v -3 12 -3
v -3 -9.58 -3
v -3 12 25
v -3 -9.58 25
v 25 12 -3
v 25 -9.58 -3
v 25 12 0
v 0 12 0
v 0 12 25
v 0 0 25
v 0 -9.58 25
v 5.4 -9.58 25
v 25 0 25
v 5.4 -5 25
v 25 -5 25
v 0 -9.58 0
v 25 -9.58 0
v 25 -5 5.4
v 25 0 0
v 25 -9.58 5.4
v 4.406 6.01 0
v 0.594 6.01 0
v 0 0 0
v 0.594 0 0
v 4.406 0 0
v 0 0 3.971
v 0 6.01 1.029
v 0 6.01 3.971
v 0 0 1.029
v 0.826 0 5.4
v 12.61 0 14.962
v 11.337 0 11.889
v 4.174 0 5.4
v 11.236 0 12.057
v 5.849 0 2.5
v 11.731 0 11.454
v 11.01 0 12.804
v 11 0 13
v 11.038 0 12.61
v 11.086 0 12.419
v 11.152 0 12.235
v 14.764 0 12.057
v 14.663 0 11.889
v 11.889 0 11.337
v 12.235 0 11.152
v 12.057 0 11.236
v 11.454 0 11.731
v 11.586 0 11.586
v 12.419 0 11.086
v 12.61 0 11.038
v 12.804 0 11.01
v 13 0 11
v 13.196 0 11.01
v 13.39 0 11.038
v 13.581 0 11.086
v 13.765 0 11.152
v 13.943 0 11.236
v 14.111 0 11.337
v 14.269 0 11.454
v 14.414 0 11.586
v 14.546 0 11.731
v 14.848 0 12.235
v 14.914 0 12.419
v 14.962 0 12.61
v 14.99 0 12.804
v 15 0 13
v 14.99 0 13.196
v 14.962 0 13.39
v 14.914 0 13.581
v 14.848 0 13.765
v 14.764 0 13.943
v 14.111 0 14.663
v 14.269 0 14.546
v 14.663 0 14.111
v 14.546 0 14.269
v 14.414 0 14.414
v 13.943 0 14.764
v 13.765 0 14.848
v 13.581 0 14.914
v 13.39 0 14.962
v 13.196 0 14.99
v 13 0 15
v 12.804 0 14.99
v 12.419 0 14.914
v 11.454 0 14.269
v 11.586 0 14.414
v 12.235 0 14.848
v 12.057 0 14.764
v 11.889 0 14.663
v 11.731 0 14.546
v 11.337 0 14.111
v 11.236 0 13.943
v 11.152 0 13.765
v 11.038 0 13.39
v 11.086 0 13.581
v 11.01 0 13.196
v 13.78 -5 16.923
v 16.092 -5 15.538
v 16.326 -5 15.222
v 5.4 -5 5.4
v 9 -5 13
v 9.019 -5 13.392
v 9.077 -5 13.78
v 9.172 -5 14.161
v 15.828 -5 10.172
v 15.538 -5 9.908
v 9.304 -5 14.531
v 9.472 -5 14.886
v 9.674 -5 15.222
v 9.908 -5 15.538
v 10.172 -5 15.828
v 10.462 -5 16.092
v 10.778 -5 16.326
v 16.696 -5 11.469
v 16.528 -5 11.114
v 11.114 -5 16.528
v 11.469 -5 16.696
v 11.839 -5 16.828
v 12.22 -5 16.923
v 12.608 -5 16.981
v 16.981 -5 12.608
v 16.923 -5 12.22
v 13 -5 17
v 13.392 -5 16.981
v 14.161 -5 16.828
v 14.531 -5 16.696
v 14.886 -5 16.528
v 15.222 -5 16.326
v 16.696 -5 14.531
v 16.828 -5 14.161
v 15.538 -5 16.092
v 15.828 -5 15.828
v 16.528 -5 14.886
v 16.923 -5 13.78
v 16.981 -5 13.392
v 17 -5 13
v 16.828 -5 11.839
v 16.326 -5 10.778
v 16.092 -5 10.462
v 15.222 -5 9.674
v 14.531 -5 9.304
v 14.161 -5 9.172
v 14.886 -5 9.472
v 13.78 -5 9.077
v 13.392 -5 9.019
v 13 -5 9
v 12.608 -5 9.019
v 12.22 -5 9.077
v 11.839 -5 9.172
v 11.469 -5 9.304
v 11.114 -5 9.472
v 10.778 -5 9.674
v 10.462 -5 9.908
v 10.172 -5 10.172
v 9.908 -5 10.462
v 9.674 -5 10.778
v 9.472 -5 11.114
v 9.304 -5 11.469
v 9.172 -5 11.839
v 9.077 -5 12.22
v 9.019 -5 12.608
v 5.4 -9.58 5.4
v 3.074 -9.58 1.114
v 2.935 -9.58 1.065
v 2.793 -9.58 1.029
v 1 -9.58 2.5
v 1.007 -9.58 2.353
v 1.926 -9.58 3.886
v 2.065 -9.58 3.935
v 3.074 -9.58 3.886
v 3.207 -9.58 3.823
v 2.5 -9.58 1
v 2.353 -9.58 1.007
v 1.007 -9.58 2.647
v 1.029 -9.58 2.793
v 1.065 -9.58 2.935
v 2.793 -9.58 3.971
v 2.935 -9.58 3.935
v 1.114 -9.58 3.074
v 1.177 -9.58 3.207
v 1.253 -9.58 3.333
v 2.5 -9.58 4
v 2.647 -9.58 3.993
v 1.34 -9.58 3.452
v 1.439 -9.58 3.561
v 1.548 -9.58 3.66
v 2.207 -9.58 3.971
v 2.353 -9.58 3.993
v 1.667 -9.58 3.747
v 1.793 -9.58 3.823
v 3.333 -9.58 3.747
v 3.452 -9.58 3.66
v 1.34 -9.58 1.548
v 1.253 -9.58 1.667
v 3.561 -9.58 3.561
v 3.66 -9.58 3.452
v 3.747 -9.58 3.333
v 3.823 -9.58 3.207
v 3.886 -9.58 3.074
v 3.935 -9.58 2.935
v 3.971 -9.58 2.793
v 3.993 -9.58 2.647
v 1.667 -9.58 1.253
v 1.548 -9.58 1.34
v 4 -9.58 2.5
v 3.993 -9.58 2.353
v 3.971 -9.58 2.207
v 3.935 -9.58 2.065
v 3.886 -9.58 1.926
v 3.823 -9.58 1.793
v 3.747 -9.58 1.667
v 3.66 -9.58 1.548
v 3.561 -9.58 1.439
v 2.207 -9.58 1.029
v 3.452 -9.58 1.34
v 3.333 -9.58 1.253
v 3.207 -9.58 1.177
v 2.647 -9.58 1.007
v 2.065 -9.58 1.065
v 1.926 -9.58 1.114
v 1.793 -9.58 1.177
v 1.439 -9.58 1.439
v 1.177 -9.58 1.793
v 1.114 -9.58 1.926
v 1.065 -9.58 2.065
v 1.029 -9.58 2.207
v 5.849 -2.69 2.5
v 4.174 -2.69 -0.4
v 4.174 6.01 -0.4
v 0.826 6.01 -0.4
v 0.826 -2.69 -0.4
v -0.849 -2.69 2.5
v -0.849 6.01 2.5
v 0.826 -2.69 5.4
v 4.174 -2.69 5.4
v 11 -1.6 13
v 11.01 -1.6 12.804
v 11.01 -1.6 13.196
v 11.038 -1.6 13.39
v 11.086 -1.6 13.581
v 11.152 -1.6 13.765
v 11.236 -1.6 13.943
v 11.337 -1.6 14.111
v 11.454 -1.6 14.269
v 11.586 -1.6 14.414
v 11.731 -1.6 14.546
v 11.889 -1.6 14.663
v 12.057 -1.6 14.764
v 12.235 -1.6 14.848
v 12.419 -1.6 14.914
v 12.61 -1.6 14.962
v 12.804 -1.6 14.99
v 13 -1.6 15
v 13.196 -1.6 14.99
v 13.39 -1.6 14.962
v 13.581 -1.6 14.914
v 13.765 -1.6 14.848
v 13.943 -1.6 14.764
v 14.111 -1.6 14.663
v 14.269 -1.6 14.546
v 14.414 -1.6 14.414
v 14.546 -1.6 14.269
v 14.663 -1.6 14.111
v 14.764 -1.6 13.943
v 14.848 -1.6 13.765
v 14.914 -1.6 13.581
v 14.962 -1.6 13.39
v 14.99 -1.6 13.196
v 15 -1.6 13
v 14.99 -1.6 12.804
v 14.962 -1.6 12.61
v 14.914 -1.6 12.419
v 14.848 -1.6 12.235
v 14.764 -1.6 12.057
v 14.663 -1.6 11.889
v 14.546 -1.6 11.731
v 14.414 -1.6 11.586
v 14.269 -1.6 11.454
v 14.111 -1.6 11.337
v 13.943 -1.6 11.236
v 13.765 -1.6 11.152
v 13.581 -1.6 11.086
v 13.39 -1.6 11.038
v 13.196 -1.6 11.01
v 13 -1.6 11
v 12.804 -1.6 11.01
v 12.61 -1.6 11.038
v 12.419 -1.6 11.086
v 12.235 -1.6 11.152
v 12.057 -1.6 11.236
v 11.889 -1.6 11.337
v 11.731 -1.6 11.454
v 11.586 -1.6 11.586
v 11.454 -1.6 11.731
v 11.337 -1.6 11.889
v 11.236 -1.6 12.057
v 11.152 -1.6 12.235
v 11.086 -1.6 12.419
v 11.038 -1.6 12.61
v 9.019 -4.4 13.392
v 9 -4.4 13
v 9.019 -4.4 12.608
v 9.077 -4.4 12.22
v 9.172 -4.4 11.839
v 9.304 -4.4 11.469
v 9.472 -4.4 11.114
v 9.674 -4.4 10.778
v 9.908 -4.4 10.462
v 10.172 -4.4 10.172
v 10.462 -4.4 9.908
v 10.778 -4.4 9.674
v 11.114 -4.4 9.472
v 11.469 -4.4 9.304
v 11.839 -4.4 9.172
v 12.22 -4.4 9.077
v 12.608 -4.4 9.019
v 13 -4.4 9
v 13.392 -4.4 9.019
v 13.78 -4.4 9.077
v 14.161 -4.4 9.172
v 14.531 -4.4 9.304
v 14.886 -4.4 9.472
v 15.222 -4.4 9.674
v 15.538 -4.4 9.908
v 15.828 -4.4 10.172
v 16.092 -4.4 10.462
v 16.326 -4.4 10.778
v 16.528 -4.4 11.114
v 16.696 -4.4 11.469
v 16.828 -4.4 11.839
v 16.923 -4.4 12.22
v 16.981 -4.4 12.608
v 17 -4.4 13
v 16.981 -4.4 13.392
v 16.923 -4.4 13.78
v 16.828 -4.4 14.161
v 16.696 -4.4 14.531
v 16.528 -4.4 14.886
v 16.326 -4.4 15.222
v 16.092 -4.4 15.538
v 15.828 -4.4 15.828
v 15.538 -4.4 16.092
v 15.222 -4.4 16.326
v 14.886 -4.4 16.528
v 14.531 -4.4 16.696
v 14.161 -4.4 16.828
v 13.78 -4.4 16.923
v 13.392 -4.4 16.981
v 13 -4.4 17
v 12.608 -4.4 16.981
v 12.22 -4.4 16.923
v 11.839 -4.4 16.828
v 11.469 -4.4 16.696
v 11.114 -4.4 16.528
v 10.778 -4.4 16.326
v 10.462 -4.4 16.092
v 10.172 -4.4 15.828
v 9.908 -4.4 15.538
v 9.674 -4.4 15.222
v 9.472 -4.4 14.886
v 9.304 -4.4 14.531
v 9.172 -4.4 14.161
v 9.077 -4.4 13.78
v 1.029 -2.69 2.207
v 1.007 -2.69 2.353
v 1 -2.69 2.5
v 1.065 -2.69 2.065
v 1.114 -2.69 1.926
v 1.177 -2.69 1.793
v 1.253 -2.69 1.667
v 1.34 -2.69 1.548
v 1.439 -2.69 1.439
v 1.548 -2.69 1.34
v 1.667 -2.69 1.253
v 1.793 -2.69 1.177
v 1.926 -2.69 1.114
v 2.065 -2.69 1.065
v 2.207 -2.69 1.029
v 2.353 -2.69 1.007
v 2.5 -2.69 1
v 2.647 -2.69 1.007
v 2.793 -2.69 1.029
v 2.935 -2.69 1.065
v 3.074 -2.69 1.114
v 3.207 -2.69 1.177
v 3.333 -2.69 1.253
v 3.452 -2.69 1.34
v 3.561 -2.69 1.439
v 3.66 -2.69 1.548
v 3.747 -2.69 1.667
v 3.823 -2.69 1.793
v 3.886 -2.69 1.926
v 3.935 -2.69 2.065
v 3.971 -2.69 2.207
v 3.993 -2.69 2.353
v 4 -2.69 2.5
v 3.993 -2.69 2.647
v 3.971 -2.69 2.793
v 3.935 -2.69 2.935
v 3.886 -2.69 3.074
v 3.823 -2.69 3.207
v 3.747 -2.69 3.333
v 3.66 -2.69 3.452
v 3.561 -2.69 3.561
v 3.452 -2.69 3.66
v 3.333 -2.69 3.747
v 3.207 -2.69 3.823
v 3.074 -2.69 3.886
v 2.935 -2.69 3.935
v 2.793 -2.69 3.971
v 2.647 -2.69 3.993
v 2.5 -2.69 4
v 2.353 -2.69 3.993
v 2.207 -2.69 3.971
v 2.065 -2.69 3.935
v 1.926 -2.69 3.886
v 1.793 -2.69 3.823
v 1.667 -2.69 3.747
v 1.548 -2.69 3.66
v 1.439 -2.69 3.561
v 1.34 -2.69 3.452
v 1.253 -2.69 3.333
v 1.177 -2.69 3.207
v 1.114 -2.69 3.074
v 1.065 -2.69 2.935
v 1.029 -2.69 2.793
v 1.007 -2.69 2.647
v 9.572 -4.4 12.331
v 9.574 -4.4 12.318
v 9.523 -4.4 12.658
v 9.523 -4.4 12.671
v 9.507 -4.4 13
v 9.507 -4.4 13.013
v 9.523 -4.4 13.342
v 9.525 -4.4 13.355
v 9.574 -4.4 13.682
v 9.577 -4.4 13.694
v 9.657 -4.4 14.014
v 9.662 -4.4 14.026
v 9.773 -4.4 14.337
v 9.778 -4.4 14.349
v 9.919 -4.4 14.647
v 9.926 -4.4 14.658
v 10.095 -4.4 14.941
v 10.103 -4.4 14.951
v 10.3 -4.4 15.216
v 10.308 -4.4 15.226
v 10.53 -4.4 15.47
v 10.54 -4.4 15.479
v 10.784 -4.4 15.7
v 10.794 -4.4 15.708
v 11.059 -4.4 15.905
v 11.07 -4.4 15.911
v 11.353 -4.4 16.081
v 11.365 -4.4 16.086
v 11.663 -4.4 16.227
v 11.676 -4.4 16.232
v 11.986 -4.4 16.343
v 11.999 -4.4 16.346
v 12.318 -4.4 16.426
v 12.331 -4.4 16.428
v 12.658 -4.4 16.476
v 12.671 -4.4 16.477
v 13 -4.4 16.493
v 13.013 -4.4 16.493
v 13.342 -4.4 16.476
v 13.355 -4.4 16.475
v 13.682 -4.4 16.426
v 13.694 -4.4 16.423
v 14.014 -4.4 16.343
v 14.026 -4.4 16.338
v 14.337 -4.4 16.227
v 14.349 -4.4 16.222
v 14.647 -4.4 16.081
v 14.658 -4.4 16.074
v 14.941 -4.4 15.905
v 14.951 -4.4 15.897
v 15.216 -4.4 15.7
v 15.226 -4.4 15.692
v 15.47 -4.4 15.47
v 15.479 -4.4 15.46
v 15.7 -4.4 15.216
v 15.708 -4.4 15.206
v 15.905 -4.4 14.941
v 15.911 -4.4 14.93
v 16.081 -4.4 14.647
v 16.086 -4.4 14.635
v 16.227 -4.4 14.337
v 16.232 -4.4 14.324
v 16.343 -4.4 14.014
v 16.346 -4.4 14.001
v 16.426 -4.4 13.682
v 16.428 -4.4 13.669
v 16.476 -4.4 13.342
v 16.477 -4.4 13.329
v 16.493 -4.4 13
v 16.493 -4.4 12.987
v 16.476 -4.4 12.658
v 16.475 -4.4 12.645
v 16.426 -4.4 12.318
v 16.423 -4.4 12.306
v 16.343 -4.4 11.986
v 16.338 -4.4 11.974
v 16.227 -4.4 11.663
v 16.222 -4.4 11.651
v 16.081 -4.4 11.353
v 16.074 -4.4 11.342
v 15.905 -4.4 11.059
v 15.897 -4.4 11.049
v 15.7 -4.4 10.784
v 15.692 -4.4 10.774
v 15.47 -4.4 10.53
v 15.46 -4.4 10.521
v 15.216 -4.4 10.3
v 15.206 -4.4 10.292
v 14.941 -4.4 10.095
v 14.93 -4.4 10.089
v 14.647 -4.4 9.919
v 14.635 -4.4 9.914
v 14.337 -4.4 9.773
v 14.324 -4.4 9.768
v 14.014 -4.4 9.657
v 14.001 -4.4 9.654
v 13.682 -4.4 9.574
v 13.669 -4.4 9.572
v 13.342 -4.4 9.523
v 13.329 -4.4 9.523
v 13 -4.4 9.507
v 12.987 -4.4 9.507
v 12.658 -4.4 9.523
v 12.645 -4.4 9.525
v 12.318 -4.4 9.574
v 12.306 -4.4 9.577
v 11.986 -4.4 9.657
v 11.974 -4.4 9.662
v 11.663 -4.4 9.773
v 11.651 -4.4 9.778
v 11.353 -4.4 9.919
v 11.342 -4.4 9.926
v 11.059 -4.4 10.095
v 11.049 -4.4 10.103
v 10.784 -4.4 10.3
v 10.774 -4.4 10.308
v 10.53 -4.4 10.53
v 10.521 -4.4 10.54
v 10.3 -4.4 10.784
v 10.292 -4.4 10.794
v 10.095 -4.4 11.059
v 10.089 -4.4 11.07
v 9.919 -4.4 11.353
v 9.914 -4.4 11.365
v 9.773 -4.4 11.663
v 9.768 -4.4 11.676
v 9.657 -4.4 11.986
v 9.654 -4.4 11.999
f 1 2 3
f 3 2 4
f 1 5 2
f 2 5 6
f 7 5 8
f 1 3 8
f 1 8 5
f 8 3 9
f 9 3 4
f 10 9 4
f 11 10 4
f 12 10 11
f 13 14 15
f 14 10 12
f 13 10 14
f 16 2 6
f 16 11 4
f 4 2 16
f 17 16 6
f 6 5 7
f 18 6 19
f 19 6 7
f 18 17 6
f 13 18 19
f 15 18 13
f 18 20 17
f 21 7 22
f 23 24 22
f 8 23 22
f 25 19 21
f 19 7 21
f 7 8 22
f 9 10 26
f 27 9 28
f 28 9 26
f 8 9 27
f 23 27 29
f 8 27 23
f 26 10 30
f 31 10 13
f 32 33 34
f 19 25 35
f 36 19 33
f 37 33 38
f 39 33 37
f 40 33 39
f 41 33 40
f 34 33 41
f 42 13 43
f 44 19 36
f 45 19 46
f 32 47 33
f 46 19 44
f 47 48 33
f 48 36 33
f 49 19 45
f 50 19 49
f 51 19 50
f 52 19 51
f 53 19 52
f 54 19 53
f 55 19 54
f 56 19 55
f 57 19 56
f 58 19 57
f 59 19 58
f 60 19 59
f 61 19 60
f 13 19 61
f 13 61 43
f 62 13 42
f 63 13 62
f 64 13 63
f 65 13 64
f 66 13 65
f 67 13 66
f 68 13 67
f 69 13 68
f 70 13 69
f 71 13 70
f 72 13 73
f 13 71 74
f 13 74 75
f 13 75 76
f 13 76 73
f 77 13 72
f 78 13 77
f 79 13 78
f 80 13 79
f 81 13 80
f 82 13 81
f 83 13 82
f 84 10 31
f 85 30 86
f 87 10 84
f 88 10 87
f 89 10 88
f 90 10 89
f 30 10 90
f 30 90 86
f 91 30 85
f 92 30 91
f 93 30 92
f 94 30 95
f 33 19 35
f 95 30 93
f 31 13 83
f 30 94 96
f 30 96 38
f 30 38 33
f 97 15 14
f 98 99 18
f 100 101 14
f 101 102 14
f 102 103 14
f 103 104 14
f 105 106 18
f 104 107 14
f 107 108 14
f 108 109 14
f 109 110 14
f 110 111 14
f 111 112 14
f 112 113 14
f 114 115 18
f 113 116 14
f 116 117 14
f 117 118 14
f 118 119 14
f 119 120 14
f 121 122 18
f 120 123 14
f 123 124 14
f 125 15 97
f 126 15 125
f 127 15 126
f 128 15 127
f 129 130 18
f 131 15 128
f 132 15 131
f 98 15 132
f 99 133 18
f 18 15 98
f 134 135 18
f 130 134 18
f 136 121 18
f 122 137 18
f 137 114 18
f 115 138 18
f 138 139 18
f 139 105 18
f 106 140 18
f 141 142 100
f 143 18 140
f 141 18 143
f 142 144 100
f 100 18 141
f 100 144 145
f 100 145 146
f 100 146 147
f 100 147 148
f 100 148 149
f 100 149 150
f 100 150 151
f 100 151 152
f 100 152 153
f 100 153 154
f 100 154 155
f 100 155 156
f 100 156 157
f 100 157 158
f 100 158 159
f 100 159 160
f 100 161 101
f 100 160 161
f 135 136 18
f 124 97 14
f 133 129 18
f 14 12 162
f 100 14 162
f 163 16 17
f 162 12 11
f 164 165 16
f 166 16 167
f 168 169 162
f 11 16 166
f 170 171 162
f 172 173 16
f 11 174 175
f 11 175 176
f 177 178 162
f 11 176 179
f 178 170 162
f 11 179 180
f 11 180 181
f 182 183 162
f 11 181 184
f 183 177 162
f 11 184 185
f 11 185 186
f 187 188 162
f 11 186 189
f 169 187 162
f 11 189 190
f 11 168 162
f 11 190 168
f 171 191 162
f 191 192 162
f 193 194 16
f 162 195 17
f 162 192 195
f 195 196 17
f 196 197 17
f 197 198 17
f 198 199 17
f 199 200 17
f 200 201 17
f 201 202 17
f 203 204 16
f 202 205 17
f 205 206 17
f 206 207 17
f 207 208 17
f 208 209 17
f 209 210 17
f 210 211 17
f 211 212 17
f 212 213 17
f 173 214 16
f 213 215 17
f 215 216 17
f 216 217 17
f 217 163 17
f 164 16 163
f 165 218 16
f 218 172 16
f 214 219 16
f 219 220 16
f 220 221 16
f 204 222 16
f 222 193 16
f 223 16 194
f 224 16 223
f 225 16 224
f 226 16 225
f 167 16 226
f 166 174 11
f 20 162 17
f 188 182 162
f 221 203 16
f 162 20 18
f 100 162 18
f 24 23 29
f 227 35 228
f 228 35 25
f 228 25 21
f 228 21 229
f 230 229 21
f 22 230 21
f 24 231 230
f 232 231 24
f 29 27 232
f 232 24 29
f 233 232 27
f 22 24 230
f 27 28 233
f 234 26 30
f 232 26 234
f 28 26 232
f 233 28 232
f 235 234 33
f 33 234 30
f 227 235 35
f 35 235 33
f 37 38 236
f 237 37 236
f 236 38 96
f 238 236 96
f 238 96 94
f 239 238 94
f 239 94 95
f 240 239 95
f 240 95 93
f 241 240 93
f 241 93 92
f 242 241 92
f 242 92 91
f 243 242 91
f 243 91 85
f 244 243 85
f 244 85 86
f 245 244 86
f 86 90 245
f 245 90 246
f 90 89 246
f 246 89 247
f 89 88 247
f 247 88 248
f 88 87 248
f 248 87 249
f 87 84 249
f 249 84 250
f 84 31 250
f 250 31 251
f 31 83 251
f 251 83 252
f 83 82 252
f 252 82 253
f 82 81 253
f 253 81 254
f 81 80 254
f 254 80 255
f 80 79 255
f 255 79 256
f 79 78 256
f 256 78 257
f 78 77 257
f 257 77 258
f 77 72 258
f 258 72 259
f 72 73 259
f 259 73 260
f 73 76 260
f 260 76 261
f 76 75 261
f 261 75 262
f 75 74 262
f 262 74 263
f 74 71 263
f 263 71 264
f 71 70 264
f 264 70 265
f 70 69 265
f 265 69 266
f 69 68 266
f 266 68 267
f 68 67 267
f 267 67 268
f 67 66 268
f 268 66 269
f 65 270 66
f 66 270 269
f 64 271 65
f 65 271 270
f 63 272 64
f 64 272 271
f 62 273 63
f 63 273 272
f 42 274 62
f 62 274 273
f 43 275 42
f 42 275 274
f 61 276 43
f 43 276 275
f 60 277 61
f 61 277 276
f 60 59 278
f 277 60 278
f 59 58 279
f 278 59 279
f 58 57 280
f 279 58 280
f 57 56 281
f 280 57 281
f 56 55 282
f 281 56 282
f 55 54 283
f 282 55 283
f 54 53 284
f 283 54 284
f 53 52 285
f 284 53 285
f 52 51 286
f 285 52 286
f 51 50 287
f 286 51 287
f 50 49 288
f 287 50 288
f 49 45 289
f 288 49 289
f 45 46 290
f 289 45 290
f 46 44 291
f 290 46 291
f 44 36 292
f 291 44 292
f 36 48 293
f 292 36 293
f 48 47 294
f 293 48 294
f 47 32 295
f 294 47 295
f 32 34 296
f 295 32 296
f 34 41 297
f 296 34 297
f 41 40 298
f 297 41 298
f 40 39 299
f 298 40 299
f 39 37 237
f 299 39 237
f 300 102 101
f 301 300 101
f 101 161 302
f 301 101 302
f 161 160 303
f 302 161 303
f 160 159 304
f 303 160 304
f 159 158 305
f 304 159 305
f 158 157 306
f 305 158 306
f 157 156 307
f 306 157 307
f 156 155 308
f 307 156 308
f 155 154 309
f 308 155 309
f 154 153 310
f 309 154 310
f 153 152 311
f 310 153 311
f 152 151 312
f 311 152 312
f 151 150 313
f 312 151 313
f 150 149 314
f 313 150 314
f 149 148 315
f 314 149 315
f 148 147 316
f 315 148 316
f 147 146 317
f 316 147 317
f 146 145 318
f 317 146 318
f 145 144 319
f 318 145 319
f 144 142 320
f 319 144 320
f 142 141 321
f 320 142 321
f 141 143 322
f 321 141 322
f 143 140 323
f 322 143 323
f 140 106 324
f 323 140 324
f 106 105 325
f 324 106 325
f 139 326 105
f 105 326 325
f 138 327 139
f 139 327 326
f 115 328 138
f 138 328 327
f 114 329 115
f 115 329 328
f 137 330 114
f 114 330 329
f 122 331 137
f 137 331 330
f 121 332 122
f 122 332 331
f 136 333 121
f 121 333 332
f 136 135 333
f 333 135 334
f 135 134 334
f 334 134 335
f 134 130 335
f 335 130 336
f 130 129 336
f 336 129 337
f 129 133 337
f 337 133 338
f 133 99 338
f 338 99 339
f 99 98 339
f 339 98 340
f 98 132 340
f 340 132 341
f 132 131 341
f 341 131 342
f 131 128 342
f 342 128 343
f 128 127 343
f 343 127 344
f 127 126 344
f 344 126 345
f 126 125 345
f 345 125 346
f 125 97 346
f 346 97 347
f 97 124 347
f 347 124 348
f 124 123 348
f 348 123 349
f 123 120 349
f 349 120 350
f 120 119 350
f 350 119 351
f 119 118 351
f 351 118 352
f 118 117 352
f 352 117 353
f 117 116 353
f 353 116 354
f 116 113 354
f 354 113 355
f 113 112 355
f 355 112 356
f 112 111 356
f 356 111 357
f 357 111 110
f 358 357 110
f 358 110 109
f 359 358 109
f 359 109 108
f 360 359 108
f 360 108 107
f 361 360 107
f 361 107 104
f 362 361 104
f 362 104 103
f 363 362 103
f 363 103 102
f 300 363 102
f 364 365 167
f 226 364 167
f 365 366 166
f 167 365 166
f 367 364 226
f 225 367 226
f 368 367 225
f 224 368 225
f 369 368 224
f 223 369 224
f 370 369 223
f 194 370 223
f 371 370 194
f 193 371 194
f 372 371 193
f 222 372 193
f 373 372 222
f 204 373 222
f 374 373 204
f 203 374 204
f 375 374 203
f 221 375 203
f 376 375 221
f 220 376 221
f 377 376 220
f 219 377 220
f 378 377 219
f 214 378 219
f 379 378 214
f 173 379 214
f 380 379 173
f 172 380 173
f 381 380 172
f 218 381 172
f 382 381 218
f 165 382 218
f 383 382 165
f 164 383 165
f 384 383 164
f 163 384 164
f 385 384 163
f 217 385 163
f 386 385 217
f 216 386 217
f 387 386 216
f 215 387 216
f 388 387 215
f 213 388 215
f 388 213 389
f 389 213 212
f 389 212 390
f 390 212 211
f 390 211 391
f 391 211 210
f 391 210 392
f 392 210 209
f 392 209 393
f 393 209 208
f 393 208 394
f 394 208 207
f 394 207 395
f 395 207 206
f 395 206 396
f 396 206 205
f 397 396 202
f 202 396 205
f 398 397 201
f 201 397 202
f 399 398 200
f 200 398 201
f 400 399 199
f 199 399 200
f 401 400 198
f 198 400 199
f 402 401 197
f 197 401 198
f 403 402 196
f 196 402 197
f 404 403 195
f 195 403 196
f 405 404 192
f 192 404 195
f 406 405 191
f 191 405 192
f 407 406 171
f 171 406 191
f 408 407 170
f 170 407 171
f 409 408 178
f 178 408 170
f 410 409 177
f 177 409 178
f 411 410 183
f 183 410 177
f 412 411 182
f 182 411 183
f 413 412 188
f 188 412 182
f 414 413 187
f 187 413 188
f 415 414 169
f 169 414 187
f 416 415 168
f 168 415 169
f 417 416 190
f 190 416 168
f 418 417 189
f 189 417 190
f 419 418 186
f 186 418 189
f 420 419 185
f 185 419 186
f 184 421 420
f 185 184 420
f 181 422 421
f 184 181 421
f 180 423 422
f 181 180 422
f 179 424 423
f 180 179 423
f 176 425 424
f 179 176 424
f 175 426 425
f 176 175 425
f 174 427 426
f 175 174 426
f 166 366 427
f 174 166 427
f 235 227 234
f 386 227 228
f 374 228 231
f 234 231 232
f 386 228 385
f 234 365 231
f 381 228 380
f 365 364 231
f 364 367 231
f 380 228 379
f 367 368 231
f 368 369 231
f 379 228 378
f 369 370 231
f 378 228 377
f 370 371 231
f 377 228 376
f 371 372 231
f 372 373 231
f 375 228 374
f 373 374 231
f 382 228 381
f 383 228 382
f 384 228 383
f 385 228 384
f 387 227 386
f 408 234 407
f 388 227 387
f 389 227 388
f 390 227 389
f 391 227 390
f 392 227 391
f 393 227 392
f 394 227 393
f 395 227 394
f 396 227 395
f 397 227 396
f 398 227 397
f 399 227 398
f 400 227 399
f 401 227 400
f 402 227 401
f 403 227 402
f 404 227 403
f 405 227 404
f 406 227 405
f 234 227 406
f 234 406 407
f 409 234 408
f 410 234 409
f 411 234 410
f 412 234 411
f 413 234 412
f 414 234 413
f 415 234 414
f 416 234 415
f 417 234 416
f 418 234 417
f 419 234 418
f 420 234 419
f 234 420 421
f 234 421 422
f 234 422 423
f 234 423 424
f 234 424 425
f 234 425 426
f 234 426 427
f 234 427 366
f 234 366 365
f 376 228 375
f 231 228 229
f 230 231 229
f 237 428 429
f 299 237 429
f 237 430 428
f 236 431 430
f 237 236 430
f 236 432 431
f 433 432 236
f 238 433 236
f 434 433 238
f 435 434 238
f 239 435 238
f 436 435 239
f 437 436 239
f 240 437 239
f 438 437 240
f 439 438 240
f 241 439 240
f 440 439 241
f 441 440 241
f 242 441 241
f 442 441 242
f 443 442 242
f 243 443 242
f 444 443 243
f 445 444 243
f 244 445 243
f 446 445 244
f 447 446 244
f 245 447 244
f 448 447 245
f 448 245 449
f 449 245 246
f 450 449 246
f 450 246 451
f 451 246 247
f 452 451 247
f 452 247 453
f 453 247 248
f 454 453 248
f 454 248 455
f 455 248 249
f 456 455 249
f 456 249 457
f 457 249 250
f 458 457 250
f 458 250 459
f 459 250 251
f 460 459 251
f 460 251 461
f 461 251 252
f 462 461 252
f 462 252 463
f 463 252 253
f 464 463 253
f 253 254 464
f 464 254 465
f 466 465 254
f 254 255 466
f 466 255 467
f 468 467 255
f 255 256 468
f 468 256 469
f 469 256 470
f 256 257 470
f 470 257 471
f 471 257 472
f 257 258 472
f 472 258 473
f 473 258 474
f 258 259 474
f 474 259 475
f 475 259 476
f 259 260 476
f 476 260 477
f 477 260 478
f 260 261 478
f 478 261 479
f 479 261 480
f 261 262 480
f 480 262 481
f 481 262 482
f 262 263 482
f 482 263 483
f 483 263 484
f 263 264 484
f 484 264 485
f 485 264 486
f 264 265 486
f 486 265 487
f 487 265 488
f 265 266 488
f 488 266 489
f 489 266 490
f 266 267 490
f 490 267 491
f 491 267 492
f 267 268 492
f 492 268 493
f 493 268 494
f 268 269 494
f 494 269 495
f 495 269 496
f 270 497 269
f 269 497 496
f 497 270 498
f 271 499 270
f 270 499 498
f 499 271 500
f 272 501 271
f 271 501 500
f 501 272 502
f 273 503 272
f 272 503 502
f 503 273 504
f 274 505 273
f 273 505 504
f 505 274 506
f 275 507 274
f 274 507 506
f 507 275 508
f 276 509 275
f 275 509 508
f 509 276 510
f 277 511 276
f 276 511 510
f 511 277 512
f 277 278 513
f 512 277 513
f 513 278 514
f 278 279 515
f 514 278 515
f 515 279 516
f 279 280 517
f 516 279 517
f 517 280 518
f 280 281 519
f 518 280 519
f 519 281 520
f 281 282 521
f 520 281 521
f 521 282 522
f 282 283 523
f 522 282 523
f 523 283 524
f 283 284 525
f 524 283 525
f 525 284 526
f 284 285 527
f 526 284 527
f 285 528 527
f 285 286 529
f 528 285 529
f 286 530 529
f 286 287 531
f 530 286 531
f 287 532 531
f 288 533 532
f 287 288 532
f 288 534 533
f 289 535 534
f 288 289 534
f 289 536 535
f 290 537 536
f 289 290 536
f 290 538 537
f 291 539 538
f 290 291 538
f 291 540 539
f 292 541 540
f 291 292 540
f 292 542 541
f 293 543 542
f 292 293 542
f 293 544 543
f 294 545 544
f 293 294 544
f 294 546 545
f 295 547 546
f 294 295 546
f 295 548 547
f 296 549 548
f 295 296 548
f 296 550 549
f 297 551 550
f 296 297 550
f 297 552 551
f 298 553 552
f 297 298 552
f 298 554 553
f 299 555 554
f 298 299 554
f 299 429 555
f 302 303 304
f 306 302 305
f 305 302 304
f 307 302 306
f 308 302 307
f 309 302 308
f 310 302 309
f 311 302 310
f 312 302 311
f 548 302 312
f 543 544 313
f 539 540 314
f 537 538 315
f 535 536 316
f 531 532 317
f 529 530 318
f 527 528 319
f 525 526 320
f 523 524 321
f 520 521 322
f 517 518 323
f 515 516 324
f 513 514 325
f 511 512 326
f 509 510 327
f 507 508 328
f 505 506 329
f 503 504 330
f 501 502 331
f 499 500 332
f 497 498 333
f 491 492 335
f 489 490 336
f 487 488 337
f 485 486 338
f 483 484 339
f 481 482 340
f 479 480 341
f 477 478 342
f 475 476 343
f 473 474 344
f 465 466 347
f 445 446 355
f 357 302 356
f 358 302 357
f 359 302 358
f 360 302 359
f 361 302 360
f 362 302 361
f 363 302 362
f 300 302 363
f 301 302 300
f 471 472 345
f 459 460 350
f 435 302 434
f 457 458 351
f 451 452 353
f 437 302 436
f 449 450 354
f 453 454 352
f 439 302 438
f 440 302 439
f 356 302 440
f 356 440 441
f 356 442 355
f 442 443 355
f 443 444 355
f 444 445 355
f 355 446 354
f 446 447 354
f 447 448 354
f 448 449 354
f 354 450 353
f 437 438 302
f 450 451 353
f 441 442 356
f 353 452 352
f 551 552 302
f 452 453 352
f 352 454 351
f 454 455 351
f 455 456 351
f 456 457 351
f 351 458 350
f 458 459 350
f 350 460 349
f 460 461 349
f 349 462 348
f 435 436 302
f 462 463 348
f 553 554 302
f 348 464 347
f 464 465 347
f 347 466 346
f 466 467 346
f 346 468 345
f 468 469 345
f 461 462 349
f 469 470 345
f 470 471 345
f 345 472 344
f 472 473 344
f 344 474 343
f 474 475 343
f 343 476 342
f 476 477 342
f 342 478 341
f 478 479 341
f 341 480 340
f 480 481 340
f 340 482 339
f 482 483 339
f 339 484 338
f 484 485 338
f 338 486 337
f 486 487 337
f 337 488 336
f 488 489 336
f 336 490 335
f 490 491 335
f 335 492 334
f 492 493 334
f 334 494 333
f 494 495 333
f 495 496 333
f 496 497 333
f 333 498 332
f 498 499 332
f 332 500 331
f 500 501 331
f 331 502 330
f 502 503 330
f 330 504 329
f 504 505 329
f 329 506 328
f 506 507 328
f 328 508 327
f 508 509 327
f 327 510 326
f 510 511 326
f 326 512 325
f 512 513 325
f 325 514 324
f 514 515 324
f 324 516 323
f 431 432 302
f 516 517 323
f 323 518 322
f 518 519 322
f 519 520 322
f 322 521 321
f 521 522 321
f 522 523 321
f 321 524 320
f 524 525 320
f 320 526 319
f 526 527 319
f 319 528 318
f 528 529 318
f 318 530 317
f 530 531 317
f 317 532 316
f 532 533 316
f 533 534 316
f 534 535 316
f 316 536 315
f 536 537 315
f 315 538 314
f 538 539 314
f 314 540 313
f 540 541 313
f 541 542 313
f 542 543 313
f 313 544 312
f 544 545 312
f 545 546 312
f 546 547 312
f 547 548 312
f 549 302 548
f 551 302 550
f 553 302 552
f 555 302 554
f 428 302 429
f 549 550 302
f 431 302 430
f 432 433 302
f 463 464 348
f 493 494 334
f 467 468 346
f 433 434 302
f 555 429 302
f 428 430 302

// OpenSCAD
$fn=64;
rotate(a = [90, 0, 0])
difference(){difference(){difference(){difference(){union(){union(){difference(){cube(size = [25, 25, 9.580]);
translate(v = [5.400, 5.400, 5])
cube(size = [25, 25, 9.580]);
}
translate(v = [-3, 0, -12])
cube(size = [3, 25, 21.580]);
}
translate(v = [-3, -3, -12])
cube(size = [28, 3, 21.580]);
}
translate(v = [13, 13, 4.400])
cylinder(h = 5, r = 4.000);
}
translate(v = [13, 13, 4.600])
mirror(v = [0, 0, 1])
color("Silver"){union(){cylinder(h = 20, r = 2.000);
cylinder(h = 3, r1 = 3.600, r2 = 2.000);
}
}
}
translate(v = [2.500, 2.500, 10])
mirror(v = [0, 0, 1])
union(){color("Gainsboro"){translate(v = [0, 0, -3])
cylinder(h = 3, r = 2.750);
}
color("DarkGray"){cylinder(h = 12, r = 1.500);
}
}
}
translate(v = [2.500, 2.500, -6.010])
color("Gainsboro"){cylinder(h = 8.700, $fn = 6, r = 3.349);
}
}
